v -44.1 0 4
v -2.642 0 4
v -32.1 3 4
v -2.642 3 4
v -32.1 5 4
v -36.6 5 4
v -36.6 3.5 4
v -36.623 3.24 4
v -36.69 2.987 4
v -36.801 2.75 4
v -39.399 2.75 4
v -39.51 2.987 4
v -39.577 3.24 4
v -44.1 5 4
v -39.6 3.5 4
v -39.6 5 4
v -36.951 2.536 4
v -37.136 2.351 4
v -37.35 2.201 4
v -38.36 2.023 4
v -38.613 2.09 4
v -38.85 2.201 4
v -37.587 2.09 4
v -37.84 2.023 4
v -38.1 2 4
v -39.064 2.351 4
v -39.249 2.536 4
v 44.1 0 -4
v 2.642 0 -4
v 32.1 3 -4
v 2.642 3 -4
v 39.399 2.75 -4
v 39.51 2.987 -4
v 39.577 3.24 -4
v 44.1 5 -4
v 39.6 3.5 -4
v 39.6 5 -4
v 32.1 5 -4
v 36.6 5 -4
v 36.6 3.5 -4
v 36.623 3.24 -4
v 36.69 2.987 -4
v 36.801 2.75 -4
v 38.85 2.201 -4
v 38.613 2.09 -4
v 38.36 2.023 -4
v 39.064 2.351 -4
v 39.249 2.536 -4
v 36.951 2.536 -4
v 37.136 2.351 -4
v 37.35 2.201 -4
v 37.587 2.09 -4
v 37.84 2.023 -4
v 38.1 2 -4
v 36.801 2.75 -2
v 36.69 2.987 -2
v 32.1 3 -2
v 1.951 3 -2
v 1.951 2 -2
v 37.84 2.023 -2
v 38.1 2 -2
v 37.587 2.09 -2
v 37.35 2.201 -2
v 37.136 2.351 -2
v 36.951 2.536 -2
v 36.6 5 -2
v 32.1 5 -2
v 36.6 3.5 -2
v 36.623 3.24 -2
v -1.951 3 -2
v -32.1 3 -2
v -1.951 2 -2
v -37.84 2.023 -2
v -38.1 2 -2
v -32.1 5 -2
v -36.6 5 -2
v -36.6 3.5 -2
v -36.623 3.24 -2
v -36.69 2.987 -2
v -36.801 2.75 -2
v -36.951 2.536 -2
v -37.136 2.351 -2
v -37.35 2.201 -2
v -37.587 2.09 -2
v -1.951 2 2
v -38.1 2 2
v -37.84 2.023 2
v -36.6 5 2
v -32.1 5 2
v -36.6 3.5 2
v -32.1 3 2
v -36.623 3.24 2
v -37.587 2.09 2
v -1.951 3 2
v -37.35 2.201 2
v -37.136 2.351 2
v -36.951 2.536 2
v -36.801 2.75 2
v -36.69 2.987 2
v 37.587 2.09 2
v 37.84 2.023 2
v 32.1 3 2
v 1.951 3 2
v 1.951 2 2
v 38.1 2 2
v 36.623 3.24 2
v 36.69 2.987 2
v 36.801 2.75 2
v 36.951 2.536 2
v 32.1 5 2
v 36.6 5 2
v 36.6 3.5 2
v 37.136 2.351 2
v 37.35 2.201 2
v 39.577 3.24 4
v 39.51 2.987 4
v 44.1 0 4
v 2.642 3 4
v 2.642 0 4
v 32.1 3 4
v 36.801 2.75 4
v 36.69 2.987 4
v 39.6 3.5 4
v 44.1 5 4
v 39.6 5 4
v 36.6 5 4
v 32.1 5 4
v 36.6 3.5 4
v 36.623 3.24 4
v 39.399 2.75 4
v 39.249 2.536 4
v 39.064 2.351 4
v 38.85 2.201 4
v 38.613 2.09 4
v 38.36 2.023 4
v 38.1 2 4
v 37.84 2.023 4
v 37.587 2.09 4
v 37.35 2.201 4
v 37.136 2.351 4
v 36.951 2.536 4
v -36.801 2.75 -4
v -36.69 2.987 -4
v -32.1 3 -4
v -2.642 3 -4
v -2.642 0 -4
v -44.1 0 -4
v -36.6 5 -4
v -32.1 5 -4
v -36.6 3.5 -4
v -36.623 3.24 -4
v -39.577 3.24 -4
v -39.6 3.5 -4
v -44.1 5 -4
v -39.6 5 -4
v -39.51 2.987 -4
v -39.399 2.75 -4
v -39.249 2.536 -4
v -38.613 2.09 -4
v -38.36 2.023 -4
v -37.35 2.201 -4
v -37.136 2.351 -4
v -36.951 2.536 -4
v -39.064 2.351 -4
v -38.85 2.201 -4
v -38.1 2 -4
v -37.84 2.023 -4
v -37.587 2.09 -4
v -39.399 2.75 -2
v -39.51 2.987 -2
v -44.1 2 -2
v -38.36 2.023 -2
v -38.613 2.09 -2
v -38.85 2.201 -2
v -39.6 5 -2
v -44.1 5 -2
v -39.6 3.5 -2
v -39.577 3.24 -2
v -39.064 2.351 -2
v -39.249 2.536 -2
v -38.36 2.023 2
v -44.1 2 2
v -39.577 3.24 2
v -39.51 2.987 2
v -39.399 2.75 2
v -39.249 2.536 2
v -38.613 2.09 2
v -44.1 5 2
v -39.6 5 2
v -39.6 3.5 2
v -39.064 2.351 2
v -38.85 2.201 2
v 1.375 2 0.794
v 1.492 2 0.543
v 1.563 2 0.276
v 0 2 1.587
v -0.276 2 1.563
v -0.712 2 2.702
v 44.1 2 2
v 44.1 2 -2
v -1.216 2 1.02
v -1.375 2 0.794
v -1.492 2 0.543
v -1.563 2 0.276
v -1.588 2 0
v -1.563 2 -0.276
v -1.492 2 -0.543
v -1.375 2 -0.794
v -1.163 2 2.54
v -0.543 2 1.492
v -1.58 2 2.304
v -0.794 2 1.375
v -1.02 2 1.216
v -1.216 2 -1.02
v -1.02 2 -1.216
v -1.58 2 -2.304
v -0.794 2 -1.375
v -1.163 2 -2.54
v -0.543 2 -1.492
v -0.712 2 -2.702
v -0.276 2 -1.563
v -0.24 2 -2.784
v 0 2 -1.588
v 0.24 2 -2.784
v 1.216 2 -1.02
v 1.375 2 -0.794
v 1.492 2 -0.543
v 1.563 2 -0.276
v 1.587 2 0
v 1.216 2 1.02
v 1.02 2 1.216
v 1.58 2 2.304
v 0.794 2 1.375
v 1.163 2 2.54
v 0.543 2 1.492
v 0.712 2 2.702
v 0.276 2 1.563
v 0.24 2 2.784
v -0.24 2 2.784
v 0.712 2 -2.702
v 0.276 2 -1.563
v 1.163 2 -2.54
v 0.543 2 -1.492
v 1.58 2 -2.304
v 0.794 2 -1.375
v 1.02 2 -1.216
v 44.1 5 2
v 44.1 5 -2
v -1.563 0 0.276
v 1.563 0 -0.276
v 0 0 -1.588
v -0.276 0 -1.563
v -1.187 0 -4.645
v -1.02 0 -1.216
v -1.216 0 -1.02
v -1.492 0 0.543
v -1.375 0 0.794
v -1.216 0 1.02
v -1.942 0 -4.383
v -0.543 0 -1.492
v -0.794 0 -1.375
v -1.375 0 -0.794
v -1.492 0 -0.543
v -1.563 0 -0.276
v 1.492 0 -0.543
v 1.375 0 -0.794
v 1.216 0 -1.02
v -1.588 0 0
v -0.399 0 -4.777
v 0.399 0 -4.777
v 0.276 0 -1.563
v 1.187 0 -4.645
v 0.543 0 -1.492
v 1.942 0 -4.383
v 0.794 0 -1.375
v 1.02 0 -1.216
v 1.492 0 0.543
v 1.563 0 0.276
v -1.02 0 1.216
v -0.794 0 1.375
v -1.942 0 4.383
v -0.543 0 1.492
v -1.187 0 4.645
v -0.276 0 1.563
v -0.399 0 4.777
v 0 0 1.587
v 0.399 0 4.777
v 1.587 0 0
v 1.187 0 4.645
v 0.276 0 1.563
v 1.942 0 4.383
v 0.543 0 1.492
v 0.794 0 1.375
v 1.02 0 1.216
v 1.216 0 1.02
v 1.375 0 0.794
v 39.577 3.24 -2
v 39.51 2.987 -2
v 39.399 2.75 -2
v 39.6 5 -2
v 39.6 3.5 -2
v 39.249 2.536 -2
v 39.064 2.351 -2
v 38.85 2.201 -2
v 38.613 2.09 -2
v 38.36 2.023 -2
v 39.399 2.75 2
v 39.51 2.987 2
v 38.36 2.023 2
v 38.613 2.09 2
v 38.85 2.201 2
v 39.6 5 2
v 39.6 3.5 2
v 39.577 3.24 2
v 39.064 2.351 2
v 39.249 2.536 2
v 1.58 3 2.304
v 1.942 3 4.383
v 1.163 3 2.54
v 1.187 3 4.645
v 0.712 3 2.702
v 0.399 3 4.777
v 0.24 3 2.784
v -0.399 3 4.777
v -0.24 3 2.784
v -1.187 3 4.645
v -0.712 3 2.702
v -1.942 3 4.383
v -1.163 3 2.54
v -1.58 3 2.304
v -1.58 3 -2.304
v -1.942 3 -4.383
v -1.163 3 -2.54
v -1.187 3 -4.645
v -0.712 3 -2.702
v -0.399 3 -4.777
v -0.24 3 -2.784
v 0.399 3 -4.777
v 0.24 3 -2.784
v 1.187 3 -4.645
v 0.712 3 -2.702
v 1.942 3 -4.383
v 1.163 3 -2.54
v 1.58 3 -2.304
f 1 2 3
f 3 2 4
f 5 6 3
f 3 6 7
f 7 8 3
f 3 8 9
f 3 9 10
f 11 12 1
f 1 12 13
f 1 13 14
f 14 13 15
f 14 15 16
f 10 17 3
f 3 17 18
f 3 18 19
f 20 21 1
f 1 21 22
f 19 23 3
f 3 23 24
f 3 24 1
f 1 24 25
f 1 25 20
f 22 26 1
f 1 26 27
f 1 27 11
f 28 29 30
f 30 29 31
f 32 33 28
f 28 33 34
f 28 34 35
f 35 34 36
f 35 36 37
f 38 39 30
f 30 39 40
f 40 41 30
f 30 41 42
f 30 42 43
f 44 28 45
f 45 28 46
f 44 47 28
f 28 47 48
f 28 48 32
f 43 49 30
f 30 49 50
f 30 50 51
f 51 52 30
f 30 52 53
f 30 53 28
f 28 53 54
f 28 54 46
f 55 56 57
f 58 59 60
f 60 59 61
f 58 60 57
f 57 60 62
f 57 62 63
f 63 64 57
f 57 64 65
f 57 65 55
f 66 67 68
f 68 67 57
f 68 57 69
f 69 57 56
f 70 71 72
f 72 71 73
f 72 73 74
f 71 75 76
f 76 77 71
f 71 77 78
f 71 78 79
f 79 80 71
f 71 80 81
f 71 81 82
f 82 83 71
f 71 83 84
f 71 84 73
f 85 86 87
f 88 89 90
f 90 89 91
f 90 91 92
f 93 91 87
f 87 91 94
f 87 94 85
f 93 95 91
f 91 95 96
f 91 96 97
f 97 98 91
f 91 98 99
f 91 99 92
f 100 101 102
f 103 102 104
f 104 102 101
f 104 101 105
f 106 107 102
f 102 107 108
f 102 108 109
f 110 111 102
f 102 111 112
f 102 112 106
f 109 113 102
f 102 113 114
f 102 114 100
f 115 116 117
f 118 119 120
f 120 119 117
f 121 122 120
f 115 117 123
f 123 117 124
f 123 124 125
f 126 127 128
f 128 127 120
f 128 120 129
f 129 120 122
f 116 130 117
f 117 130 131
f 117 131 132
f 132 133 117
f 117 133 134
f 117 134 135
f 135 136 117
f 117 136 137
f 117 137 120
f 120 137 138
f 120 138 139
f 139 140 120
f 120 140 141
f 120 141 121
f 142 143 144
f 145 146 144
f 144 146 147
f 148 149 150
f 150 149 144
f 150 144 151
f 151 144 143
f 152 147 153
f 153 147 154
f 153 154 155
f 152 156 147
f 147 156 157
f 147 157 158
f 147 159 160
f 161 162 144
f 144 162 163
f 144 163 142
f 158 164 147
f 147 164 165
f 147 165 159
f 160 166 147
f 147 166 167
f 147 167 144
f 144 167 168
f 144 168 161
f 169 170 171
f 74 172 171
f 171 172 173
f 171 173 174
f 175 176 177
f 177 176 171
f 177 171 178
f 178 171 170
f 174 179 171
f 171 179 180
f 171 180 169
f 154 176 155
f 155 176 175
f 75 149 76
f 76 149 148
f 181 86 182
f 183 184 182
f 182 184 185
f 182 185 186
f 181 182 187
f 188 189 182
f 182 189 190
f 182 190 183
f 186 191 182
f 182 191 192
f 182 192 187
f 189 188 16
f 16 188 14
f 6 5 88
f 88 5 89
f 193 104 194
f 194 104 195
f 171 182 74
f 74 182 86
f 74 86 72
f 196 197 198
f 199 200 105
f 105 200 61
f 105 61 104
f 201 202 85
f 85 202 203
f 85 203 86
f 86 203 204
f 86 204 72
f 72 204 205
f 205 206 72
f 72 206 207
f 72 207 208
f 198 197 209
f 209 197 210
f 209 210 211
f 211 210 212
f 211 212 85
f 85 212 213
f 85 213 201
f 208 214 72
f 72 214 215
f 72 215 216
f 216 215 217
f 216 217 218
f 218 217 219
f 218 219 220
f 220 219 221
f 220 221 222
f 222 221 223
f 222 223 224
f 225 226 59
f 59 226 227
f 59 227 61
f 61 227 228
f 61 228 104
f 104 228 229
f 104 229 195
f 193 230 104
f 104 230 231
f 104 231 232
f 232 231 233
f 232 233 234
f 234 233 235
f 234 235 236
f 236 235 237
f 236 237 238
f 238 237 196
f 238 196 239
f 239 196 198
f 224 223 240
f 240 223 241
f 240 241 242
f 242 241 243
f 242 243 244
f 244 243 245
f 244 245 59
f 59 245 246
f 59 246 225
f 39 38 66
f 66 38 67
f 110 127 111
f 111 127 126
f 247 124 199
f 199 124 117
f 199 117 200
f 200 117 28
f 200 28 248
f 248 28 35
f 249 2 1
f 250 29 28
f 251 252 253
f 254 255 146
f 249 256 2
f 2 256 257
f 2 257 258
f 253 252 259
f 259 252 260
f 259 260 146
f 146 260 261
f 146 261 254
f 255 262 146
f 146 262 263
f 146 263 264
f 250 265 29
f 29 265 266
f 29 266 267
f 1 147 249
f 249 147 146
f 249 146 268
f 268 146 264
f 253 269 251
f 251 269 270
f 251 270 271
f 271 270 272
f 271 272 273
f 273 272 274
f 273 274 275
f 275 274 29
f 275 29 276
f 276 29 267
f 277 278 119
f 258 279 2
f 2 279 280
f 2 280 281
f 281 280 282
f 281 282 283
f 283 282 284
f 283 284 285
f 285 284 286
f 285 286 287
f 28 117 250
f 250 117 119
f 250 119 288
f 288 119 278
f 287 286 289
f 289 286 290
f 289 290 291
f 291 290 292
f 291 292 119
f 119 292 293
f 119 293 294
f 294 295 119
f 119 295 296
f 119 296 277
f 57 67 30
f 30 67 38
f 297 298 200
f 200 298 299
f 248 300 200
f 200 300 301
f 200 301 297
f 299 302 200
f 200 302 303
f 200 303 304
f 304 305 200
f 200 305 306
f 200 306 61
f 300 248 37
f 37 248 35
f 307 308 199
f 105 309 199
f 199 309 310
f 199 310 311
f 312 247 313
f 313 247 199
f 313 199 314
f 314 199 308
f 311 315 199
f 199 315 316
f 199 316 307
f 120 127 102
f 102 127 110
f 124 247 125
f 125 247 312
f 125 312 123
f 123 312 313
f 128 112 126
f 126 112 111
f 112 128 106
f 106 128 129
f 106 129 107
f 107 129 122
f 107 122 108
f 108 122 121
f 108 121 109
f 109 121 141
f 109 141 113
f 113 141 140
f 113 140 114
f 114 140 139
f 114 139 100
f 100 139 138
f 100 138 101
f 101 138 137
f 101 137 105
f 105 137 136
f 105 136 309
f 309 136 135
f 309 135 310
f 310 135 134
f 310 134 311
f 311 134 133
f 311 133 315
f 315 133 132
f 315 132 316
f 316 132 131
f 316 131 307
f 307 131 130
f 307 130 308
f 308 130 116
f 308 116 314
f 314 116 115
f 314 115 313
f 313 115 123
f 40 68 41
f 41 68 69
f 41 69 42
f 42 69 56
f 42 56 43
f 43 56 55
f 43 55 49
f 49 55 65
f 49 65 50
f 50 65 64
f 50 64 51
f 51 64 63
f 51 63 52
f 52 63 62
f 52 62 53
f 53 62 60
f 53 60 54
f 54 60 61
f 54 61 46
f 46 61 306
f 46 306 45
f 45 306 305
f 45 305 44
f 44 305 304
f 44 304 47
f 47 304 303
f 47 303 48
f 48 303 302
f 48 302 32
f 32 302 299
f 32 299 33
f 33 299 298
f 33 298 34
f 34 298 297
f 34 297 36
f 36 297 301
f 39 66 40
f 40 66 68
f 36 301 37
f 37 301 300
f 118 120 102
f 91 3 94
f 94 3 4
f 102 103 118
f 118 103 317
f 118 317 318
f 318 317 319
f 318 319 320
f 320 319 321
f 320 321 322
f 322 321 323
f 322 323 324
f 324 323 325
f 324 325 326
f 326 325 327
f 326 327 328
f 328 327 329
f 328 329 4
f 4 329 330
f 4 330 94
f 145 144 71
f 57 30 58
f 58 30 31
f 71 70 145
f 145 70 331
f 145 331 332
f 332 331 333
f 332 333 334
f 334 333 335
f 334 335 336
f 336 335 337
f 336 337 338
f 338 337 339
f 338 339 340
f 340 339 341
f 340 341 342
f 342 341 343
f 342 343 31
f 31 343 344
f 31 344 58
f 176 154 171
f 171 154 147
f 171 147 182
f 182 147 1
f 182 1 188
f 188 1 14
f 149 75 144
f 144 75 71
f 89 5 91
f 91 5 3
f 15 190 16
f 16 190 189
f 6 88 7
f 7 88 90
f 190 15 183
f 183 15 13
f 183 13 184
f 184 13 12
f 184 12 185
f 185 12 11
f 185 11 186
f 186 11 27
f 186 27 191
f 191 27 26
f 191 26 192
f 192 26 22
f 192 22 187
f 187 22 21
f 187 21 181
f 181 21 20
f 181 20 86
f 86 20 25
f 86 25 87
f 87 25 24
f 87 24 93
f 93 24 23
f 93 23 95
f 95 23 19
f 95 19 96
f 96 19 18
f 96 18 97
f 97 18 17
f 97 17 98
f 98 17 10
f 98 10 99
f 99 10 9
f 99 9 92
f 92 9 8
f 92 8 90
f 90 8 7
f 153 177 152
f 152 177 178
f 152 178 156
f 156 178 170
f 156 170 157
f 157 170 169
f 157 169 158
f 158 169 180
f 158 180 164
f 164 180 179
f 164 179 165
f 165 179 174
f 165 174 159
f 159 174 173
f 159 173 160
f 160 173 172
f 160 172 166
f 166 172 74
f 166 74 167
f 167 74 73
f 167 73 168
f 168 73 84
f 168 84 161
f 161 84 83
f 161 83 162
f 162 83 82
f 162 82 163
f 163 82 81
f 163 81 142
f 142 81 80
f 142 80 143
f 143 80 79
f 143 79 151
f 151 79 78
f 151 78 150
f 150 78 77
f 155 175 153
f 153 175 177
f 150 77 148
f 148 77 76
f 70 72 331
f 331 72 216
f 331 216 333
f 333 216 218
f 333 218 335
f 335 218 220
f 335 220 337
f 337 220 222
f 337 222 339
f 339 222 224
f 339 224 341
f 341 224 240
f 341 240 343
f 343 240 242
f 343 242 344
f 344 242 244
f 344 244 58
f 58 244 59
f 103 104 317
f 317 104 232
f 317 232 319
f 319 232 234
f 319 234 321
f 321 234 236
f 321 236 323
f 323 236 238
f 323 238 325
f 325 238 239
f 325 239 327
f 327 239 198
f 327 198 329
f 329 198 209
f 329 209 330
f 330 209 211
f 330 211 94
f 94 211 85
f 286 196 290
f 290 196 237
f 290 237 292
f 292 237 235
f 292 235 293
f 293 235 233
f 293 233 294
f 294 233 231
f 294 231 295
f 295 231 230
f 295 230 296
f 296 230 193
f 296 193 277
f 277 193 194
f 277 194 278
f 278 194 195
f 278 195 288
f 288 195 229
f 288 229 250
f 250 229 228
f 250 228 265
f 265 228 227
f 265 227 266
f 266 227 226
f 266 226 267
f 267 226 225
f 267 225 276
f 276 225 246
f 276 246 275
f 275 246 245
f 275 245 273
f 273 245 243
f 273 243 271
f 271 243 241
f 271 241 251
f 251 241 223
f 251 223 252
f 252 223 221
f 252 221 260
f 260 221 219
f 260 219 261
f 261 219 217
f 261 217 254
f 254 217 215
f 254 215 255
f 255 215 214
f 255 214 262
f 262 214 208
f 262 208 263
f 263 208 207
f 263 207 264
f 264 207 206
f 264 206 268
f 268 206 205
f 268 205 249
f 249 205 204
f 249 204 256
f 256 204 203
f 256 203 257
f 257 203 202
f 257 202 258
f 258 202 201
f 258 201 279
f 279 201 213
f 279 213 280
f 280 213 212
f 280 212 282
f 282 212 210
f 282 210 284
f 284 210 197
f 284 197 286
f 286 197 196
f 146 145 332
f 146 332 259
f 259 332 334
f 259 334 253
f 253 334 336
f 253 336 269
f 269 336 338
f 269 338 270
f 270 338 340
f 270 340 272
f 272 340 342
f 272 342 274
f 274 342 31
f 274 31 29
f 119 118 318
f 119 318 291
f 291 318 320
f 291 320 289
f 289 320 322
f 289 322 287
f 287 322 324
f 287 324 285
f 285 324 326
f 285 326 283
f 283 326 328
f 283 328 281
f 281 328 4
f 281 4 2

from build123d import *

# Parameters (mm, degrees)
SKETCH1_W           = 44.1
SKETCH1_H           = 8
BOSS_EXTRUDE1_DEPTH = 2
SKETCH2_W           = 12
SKETCH2_H           = 2
BOSS_EXTRUDE2_DEPTH = 3
CUT_EXTRUDE1_DEPTH  = 46.097782651
SKETCH4_W           = 32.1
SKETCH4_H           = 2
BOSS_EXTRUDE3_DEPTH = 1
SKETCH7_R           = 2.794
CUT_EXTRUDE3_DEPTH  = 45.382541613
SKETCH8_R           = 1.5875
CUT_EXTRUDE4_DEPTH  = 45.382541613
BOSS_EXTRUDE4_DEPTH = 3


with BuildPart() as part:
    # Sketch1 → Boss-Extrude1 (new body)
    with BuildSketch(Plane(origin=(0, 0, 0), x_dir=(1, 0, 0), z_dir=(0, 1, 0))):
        with Locations((22.05, 0)):
            Rectangle(SKETCH1_W, SKETCH1_H)
    boss_extrude1 = extrude(amount=BOSS_EXTRUDE1_DEPTH)

    # Sketch2 → Boss-Extrude2 (add)
    with BuildSketch(Plane(origin=(0, 2, 0), x_dir=(1, 0, 0), z_dir=(0, 1, 0))):
        with Locations((38.1, 3)):
            Rectangle(SKETCH2_W, SKETCH2_H)
        with Locations((38.1, -3)):
            Rectangle(SKETCH2_W, SKETCH2_H)
    boss_extrude2 = extrude(amount=BOSS_EXTRUDE2_DEPTH)

    # Sketch3 → Cut-Extrude1 (cut, through all)
    with BuildSketch(Plane.XY.offset(4)):
        with BuildLine():
            Line((36.6, 3.5), (36.6, 5))
            Line((36.6, 5), (39.6, 5))
            Line((39.6, 5), (39.6, 3.5))
            ThreePointArc((39.6, 3.5), (38.1, 2), (36.6, 3.5))
        make_face()
    cut_extrude1 = extrude(amount=-CUT_EXTRUDE1_DEPTH, mode=Mode.SUBTRACT)

    # Sketch4 → Boss-Extrude3 (add)
    with BuildSketch(Plane(origin=(0, 2, 0), x_dir=(1, 0, 0), z_dir=(0, 1, 0))):
        with Locations((16.05, -3)):
            Rectangle(SKETCH4_W, SKETCH4_H)
        with Locations((16.05, 3)):
            Rectangle(SKETCH4_W, SKETCH4_H)
    boss_extrude3 = extrude(amount=BOSS_EXTRUDE3_DEPTH)

    # Mirror1: Boss-Extrude1, Boss-Extrude2, Cut-Extrude1, Boss-Extrude3 across plane
    add(boss_extrude1.mirror(Plane(origin=(0, 0, 0), x_dir=(0, 0, 1), z_dir=(1, 0, 0))))
    add(boss_extrude2.mirror(Plane(origin=(0, 0, 0), x_dir=(0, 0, 1), z_dir=(1, 0, 0))))
    add(cut_extrude1.mirror(Plane(origin=(0, 0, 0), x_dir=(0, 0, 1), z_dir=(1, 0, 0))), mode=Mode.SUBTRACT)
    add(boss_extrude3.mirror(Plane(origin=(0, 0, 0), x_dir=(0, 0, 1), z_dir=(1, 0, 0))))

    # Sketch7 → Cut-Extrude3 (cut, through all)
    with BuildSketch(Plane(origin=(0, 2, 0), x_dir=(1, 0, 0), z_dir=(0, 1, 0))):
        Circle(SKETCH7_R)
    extrude(amount=CUT_EXTRUDE3_DEPTH, mode=Mode.SUBTRACT)

    # Sketch8 → Cut-Extrude4 (cut, through all)
    with BuildSketch(Plane(origin=(0, 2, 0), x_dir=(1, 0, 0), z_dir=(0, 1, 0))):
        with Locations(Location((0, 0, 0), (0, 0, 270))):
            Circle(SKETCH8_R)
    extrude(amount=-CUT_EXTRUDE4_DEPTH, mode=Mode.SUBTRACT)

    # Sketch9 → Boss-Extrude4 (add)
    with BuildSketch(Plane(origin=(0, 3, 0), x_dir=(1, 0, 0), z_dir=(0, 1, 0))):
        with BuildLine():
            Line((-2.642429942, -4), (2.642429942, -4))
            ThreePointArc((2.642429942, -4), (0, -4.794), (-2.642429942, -4))
        make_face()
        with BuildLine():
            Line((2.642429942, 4), (-2.642429942, 4))
            ThreePointArc((-2.642429942, 4), (0, 4.794), (2.642429942, 4))
        make_face()
    extrude(amount=-BOSS_EXTRUDE4_DEPTH)


solid = part.part
